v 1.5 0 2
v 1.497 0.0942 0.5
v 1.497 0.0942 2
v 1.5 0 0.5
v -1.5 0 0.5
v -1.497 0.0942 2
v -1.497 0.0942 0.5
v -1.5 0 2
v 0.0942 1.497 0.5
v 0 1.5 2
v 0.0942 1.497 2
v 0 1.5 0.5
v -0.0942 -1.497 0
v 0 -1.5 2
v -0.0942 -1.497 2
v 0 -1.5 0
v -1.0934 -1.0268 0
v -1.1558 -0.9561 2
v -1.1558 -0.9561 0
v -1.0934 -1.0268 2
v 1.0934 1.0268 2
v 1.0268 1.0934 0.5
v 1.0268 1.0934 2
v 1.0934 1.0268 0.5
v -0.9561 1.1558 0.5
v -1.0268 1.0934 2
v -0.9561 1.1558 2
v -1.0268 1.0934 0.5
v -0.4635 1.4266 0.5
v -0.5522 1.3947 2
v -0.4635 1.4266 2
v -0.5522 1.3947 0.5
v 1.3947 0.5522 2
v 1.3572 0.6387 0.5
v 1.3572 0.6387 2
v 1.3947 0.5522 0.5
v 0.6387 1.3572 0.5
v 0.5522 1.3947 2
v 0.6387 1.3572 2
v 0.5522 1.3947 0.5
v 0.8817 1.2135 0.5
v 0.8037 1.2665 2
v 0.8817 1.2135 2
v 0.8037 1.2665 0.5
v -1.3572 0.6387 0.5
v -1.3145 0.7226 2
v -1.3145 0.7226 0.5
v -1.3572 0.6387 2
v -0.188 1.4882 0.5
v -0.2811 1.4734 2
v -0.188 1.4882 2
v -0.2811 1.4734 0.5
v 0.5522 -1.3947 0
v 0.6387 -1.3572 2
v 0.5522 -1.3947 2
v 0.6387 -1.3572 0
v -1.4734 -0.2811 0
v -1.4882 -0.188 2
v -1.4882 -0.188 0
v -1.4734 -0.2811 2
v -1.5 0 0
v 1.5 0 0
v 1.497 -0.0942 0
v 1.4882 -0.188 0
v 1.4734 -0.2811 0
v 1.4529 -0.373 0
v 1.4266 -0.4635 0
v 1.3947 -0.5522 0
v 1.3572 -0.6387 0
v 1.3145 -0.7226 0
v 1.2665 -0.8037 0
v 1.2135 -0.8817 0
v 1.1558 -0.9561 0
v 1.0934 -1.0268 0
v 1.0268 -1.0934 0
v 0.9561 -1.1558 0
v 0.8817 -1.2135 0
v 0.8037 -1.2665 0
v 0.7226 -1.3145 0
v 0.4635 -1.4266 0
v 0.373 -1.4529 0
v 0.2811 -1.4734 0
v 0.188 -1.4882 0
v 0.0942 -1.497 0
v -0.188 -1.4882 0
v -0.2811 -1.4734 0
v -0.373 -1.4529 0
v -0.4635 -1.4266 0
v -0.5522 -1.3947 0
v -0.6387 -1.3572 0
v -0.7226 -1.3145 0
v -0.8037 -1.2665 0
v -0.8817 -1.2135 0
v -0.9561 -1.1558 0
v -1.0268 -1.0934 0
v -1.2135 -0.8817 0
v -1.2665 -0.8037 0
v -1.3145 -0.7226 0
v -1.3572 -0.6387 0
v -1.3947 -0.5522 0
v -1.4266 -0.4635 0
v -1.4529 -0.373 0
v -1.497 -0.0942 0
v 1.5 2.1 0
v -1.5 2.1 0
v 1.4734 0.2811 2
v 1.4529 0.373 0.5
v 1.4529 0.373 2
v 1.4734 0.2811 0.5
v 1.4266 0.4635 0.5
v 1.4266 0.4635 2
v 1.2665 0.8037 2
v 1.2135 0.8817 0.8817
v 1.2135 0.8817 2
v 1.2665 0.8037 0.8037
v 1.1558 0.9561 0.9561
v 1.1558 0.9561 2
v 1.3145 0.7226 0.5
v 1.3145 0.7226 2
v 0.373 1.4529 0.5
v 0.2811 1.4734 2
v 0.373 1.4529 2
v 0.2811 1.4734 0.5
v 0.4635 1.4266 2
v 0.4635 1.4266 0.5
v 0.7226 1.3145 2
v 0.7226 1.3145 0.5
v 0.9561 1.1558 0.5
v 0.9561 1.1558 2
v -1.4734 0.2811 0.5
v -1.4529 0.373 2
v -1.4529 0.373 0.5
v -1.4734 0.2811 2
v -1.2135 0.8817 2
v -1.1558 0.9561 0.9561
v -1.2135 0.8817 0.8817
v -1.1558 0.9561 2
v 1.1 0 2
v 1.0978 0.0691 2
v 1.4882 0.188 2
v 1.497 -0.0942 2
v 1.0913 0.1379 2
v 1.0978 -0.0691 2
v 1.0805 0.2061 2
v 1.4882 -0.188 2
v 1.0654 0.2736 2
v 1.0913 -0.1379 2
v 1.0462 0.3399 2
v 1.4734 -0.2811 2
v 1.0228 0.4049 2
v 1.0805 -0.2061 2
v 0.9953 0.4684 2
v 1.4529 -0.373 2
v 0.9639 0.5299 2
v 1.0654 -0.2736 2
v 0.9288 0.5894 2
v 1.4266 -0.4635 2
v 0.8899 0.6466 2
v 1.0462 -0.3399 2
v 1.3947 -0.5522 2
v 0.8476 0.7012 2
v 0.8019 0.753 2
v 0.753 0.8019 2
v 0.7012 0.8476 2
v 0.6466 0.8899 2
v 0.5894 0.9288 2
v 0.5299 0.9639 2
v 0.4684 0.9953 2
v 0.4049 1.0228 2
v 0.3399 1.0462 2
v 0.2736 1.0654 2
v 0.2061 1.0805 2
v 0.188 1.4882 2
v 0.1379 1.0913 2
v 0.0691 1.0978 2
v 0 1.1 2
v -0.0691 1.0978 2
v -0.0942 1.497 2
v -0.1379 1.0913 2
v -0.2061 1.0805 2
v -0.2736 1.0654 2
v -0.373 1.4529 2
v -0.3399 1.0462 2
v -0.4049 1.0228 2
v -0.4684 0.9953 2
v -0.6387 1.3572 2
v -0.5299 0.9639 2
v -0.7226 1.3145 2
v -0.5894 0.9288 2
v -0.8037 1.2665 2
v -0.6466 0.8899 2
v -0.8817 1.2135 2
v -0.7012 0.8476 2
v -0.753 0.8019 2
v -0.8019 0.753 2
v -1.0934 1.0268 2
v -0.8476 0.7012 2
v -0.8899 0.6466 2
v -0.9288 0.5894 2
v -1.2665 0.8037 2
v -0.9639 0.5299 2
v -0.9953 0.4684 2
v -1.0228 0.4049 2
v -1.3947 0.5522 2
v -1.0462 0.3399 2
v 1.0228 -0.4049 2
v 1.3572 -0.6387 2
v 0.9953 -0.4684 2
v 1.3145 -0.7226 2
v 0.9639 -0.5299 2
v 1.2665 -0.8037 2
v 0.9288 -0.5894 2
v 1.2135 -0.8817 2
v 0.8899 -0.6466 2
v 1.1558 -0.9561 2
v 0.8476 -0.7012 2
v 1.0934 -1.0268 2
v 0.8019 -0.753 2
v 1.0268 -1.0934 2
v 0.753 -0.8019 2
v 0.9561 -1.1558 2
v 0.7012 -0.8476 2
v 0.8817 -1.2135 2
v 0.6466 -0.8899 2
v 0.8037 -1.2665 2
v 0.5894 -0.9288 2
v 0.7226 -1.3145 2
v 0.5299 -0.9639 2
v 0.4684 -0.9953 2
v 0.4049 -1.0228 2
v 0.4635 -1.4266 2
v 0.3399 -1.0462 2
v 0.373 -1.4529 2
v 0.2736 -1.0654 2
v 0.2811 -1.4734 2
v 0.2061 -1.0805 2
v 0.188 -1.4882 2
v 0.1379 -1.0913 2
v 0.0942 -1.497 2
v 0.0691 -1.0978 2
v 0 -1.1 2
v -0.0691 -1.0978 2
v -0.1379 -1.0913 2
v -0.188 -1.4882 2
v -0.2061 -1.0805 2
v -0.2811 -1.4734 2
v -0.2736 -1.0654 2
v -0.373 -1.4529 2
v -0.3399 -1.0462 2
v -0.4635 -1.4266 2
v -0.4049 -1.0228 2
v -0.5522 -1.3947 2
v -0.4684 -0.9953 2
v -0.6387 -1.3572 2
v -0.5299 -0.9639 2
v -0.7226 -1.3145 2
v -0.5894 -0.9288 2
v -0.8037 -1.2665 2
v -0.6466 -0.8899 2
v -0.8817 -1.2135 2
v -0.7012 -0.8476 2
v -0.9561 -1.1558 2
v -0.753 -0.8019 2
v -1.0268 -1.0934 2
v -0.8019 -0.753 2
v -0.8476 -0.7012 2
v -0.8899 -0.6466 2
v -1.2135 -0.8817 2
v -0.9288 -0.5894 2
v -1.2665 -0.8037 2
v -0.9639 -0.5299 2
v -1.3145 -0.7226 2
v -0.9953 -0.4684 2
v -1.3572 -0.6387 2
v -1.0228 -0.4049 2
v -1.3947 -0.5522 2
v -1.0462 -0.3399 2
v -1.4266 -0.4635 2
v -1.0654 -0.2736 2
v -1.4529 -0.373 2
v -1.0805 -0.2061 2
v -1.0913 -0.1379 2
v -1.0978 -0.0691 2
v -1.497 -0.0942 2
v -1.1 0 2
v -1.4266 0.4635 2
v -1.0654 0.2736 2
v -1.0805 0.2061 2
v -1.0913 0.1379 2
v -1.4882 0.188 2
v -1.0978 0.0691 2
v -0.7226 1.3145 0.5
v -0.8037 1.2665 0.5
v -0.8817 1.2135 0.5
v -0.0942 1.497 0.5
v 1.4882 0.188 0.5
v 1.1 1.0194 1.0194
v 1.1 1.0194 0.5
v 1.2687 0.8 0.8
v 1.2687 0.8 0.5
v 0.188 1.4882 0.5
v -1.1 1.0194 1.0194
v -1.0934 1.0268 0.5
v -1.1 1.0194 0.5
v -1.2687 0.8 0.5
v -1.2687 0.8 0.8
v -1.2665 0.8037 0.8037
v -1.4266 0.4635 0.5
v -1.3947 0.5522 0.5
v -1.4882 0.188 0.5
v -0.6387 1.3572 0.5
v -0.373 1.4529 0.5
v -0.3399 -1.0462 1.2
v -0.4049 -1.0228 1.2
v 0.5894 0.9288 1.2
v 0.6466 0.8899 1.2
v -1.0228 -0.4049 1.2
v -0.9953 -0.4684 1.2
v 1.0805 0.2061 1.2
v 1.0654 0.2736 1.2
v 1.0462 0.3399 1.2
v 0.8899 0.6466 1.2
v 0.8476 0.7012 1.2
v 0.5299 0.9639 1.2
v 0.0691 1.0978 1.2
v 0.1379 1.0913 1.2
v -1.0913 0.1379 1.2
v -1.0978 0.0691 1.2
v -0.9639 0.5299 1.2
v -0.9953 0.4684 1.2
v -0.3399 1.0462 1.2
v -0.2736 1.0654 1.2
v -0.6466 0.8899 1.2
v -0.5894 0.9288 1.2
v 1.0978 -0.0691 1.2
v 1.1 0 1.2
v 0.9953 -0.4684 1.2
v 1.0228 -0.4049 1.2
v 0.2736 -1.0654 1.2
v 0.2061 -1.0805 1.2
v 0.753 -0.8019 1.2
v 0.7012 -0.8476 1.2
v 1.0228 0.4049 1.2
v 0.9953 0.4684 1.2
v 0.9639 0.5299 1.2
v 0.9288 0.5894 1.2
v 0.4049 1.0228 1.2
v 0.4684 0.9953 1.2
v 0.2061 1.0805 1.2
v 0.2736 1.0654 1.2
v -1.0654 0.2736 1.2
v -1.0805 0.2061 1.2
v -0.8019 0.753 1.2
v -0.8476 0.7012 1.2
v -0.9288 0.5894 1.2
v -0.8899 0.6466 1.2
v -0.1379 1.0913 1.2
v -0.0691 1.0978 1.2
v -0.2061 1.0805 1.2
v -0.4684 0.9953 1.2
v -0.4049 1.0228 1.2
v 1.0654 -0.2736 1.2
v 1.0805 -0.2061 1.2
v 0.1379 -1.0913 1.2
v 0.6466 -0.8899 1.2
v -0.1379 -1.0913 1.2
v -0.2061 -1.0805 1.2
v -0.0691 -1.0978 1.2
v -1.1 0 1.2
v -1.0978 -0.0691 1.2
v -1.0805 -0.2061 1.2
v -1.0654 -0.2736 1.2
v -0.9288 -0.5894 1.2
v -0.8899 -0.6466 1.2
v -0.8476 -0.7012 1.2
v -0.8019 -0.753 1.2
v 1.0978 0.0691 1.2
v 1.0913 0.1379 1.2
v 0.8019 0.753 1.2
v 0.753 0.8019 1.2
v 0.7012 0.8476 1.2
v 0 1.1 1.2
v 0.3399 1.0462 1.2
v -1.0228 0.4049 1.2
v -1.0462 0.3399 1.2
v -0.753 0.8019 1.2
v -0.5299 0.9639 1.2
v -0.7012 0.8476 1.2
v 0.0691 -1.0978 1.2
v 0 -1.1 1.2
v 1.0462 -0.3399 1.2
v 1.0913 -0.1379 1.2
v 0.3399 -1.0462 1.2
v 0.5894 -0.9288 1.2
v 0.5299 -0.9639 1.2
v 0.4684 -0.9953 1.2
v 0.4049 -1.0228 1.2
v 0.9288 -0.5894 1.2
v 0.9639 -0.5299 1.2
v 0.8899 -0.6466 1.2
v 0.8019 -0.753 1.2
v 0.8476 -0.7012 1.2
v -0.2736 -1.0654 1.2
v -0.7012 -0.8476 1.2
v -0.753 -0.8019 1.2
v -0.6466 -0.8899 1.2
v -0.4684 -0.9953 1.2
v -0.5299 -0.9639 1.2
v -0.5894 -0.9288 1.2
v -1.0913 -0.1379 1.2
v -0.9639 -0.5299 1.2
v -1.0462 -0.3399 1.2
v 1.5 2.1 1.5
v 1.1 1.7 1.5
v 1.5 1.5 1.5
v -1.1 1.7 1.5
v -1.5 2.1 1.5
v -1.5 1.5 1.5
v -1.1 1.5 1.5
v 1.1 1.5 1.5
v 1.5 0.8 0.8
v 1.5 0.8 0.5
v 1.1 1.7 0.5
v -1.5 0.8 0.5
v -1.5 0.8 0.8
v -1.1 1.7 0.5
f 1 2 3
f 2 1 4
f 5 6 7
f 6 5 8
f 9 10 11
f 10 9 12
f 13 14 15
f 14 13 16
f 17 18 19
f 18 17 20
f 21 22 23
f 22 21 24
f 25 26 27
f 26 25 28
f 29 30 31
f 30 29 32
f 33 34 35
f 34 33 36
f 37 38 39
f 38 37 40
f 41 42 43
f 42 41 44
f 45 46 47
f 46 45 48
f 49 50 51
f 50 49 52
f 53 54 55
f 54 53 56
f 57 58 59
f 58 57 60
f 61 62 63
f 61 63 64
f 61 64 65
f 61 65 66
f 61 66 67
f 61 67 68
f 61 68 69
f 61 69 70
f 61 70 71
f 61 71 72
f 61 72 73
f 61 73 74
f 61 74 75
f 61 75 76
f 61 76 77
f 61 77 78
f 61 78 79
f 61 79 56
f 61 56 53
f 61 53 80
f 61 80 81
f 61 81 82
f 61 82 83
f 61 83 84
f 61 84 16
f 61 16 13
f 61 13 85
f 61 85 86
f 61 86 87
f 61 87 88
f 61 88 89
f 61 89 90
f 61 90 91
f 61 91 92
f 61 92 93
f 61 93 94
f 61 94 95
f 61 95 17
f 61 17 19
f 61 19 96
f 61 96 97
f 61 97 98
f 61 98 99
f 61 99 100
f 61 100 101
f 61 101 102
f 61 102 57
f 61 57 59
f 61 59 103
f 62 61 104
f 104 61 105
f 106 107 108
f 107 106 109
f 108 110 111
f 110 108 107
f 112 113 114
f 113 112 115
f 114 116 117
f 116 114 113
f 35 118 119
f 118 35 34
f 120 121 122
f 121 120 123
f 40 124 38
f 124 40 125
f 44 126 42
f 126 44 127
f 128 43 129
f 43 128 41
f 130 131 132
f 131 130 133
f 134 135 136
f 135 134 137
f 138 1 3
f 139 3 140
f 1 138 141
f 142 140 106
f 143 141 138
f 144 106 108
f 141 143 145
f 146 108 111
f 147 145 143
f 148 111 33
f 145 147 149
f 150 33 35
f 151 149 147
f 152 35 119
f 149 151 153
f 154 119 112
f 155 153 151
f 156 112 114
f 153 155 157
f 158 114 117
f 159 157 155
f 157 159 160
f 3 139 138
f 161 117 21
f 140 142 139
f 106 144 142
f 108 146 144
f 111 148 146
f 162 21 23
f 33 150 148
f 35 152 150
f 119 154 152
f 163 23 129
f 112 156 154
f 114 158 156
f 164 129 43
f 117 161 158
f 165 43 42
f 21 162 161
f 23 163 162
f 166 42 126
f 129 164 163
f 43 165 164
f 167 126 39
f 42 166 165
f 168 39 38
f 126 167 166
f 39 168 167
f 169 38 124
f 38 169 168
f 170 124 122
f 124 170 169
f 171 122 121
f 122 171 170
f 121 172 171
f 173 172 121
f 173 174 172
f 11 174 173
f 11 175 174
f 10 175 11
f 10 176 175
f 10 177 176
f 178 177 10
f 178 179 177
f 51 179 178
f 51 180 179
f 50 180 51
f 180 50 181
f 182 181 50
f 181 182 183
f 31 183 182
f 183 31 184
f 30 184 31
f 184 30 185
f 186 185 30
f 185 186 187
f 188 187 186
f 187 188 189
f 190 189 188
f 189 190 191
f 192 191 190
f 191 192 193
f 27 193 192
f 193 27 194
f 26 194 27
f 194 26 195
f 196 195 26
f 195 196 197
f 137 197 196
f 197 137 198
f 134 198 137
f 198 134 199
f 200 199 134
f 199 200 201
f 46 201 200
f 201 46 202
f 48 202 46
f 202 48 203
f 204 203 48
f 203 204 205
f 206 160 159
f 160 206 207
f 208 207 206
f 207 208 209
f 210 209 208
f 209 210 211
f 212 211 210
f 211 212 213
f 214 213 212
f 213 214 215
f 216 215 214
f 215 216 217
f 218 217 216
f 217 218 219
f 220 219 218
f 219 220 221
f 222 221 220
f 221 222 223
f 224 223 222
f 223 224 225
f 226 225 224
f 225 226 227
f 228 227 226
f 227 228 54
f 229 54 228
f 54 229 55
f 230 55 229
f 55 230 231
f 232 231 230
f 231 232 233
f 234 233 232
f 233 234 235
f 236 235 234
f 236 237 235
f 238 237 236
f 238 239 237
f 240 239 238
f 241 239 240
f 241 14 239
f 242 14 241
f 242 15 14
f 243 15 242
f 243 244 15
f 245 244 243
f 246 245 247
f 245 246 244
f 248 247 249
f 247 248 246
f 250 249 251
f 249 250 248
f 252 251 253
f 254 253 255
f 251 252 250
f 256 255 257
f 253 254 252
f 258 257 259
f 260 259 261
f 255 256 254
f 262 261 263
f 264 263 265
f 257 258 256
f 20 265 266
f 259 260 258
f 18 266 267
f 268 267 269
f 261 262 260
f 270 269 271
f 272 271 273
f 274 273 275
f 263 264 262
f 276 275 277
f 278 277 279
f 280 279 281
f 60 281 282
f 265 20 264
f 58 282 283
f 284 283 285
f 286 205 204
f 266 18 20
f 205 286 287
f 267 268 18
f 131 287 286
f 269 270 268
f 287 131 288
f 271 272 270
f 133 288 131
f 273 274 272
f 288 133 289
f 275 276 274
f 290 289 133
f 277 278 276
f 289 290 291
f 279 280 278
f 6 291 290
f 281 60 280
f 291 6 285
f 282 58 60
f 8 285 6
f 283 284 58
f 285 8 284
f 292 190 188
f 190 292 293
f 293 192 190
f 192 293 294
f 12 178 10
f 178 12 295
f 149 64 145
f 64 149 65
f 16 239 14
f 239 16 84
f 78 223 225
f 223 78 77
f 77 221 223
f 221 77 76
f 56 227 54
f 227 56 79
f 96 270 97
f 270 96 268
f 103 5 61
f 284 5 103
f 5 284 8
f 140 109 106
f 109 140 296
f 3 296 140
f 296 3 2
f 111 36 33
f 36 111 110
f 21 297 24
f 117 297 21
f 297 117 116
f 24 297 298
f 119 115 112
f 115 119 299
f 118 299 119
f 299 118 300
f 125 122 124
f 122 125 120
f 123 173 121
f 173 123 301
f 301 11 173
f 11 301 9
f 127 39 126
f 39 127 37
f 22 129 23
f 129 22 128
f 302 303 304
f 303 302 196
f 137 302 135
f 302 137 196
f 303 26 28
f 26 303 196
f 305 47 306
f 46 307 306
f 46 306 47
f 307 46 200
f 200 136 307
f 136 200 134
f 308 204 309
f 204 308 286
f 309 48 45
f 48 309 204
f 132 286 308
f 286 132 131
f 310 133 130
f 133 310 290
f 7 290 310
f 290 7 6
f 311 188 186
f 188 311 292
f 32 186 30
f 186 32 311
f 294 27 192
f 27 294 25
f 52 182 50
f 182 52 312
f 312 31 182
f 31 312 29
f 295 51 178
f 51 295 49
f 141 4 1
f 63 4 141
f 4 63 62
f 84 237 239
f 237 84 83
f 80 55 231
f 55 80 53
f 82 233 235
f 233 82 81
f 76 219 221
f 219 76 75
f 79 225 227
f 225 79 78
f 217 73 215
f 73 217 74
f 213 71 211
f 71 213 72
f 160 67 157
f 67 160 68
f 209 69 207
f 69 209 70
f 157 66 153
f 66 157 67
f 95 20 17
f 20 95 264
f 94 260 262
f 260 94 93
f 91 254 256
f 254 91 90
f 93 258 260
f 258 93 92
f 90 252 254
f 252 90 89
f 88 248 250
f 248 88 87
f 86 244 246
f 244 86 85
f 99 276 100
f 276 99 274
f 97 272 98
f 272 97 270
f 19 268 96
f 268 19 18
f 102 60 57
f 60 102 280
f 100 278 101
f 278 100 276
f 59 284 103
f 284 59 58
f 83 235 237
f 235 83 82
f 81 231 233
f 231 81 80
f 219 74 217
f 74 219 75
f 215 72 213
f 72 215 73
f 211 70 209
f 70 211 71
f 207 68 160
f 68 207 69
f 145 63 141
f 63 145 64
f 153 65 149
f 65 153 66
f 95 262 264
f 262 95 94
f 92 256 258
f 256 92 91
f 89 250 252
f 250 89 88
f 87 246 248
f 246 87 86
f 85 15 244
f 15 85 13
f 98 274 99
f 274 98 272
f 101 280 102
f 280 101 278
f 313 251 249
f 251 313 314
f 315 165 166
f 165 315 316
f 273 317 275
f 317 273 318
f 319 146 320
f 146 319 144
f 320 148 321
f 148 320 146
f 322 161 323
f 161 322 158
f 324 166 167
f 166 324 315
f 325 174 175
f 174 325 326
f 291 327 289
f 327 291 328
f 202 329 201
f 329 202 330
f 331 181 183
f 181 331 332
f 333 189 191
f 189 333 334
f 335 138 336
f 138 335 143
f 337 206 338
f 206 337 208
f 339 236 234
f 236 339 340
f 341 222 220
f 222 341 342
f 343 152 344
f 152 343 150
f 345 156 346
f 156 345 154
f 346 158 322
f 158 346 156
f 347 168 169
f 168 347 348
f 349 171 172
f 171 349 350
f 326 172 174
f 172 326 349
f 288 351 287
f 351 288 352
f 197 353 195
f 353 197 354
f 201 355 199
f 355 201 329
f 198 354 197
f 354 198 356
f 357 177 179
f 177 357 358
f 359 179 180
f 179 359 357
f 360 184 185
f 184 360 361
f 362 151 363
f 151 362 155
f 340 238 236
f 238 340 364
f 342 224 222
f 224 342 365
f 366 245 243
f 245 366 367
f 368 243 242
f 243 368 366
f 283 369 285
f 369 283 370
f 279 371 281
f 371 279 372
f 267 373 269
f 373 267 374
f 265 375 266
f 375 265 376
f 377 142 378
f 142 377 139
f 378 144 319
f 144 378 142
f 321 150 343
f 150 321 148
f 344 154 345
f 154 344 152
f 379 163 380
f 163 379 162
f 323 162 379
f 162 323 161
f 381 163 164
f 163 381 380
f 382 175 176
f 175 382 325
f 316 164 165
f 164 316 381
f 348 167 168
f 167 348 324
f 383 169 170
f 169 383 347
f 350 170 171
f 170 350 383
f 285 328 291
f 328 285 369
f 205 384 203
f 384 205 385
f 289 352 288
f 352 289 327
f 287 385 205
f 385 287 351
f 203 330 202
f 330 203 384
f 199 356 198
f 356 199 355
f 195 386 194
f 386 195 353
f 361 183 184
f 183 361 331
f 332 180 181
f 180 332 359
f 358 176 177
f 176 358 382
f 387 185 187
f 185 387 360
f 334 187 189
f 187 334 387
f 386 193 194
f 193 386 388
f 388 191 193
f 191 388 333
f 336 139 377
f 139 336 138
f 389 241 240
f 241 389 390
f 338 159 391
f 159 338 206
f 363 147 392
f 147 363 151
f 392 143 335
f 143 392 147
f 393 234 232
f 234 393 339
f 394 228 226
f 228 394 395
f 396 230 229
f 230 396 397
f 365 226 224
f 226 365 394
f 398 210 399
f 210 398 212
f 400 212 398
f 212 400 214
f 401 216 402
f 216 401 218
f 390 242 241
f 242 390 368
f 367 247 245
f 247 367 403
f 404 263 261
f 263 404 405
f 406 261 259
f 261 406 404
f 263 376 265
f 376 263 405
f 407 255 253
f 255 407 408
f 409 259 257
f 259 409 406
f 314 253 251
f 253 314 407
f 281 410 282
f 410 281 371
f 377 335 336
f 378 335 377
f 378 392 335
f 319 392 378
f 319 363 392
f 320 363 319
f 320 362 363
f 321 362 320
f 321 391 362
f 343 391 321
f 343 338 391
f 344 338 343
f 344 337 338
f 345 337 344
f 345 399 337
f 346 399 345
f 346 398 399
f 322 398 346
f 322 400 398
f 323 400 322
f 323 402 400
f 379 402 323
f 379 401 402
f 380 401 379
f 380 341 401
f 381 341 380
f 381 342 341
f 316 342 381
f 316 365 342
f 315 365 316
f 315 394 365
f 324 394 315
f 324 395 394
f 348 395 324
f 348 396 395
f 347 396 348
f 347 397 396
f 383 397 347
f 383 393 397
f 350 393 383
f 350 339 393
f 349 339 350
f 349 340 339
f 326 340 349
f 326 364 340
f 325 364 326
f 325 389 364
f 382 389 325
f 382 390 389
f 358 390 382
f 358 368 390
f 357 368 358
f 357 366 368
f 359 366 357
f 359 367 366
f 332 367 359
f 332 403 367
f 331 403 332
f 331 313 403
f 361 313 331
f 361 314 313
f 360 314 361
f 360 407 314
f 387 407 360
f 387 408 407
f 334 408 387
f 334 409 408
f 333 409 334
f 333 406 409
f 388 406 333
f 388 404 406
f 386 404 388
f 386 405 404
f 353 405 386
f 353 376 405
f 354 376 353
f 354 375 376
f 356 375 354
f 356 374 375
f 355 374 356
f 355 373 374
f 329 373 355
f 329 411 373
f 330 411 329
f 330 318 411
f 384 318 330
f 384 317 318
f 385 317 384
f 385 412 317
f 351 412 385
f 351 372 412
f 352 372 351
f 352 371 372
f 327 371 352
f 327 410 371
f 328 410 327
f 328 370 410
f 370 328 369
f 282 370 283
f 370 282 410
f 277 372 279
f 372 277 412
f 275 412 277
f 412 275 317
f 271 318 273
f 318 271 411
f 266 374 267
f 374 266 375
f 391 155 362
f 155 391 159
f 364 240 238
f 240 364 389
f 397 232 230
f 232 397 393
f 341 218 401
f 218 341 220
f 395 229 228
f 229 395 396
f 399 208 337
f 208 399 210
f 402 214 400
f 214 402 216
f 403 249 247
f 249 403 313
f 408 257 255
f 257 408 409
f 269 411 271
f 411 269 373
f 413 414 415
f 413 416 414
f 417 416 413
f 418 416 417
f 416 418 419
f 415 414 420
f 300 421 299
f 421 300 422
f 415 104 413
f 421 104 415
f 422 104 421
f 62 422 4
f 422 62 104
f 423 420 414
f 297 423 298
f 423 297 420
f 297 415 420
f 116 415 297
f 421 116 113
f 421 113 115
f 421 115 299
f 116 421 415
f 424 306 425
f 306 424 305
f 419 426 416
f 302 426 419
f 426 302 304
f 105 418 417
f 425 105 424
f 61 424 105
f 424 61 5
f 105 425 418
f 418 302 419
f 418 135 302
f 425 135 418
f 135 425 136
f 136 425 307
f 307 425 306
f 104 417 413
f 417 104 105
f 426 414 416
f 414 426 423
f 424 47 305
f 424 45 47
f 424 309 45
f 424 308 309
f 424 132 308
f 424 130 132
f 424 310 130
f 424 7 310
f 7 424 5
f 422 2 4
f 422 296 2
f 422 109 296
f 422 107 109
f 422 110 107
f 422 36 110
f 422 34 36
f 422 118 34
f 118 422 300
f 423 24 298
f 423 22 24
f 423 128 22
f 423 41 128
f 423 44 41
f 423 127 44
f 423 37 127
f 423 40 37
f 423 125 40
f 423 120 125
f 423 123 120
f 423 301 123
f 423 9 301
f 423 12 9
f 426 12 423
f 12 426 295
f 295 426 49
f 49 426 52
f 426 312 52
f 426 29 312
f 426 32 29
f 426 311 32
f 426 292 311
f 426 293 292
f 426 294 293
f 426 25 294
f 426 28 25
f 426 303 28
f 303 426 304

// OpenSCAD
/**
 * Headlight
 * Světlo k mašince
 * @param diameter Průměr světla
 * @param size Délka světla
 * @author Jakub Topič
 */
module headlight() {
    difference() {
        cylinder(d=3,h=2,$fn=100);
        translate([0,0,1.2])
            cylinder(d=2.2,h=2.5,$fn=100);
    }
    translate([-1.5,1.7,0])
        cube([3.0,0.4,1.5]);

    difference() {
        rotate(90)
            translate([.8,-1.5,.0])
                cube([1,.4,1.5]);
        rotate([0,-45,90])
            translate([.8,-1.6,0])
                #cube([1.5,.6,.5]);
    }
    
    difference() {
        rotate(90)
            translate([.8,1.1,0])
                cube([1,.4,1.5]);
        rotate([0,-45,90])
            translate([.8,1,0])
                #cube([1.5,.6,.5]);
    }
    translate([-1.5,0,0])
        cube([3.0,1.8,.5]);
}

headlight();
